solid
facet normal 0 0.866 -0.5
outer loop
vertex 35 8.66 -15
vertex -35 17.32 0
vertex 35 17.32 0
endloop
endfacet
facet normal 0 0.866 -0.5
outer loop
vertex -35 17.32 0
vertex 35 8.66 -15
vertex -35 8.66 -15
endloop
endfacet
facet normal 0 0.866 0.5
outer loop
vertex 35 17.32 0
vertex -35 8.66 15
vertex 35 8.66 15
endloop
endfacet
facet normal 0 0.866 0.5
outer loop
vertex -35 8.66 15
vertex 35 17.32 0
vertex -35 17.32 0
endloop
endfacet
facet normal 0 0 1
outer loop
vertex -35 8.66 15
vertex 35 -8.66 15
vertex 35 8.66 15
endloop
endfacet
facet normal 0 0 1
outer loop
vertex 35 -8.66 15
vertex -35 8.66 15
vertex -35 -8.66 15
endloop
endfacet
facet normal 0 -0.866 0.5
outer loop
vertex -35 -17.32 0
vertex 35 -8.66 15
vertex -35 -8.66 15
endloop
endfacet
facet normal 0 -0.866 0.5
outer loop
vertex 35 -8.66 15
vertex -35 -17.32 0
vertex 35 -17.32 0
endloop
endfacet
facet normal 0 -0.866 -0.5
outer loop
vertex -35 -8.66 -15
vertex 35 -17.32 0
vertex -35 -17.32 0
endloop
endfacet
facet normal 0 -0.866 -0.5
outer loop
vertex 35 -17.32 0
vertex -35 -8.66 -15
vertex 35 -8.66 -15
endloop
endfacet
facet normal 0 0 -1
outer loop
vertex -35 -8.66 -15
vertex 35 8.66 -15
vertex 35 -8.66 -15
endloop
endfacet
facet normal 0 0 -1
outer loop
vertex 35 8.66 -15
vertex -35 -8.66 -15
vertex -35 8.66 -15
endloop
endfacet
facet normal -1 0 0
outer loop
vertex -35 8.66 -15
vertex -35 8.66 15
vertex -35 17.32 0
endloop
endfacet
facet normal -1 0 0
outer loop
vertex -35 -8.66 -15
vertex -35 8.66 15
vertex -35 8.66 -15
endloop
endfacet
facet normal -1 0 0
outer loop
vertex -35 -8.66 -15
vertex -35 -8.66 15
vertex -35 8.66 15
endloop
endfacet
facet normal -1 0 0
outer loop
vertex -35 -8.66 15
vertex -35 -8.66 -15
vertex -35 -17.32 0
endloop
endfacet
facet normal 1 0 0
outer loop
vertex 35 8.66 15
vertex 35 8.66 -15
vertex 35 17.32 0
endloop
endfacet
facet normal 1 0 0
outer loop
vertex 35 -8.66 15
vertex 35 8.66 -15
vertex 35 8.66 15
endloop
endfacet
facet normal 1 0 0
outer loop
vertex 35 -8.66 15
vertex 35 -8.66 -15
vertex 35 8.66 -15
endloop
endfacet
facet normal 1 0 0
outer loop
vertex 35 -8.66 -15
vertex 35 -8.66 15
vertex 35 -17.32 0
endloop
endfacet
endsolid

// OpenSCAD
// Hex prism: across-flats 30 (R=17.32), length 70 along X, axis Y-rotated.
rotate([0,90,0])
  translate([0,0,-35])
    rotate([0,0,30])
      cylinder(h=70, r=17.32, $fn=6);
